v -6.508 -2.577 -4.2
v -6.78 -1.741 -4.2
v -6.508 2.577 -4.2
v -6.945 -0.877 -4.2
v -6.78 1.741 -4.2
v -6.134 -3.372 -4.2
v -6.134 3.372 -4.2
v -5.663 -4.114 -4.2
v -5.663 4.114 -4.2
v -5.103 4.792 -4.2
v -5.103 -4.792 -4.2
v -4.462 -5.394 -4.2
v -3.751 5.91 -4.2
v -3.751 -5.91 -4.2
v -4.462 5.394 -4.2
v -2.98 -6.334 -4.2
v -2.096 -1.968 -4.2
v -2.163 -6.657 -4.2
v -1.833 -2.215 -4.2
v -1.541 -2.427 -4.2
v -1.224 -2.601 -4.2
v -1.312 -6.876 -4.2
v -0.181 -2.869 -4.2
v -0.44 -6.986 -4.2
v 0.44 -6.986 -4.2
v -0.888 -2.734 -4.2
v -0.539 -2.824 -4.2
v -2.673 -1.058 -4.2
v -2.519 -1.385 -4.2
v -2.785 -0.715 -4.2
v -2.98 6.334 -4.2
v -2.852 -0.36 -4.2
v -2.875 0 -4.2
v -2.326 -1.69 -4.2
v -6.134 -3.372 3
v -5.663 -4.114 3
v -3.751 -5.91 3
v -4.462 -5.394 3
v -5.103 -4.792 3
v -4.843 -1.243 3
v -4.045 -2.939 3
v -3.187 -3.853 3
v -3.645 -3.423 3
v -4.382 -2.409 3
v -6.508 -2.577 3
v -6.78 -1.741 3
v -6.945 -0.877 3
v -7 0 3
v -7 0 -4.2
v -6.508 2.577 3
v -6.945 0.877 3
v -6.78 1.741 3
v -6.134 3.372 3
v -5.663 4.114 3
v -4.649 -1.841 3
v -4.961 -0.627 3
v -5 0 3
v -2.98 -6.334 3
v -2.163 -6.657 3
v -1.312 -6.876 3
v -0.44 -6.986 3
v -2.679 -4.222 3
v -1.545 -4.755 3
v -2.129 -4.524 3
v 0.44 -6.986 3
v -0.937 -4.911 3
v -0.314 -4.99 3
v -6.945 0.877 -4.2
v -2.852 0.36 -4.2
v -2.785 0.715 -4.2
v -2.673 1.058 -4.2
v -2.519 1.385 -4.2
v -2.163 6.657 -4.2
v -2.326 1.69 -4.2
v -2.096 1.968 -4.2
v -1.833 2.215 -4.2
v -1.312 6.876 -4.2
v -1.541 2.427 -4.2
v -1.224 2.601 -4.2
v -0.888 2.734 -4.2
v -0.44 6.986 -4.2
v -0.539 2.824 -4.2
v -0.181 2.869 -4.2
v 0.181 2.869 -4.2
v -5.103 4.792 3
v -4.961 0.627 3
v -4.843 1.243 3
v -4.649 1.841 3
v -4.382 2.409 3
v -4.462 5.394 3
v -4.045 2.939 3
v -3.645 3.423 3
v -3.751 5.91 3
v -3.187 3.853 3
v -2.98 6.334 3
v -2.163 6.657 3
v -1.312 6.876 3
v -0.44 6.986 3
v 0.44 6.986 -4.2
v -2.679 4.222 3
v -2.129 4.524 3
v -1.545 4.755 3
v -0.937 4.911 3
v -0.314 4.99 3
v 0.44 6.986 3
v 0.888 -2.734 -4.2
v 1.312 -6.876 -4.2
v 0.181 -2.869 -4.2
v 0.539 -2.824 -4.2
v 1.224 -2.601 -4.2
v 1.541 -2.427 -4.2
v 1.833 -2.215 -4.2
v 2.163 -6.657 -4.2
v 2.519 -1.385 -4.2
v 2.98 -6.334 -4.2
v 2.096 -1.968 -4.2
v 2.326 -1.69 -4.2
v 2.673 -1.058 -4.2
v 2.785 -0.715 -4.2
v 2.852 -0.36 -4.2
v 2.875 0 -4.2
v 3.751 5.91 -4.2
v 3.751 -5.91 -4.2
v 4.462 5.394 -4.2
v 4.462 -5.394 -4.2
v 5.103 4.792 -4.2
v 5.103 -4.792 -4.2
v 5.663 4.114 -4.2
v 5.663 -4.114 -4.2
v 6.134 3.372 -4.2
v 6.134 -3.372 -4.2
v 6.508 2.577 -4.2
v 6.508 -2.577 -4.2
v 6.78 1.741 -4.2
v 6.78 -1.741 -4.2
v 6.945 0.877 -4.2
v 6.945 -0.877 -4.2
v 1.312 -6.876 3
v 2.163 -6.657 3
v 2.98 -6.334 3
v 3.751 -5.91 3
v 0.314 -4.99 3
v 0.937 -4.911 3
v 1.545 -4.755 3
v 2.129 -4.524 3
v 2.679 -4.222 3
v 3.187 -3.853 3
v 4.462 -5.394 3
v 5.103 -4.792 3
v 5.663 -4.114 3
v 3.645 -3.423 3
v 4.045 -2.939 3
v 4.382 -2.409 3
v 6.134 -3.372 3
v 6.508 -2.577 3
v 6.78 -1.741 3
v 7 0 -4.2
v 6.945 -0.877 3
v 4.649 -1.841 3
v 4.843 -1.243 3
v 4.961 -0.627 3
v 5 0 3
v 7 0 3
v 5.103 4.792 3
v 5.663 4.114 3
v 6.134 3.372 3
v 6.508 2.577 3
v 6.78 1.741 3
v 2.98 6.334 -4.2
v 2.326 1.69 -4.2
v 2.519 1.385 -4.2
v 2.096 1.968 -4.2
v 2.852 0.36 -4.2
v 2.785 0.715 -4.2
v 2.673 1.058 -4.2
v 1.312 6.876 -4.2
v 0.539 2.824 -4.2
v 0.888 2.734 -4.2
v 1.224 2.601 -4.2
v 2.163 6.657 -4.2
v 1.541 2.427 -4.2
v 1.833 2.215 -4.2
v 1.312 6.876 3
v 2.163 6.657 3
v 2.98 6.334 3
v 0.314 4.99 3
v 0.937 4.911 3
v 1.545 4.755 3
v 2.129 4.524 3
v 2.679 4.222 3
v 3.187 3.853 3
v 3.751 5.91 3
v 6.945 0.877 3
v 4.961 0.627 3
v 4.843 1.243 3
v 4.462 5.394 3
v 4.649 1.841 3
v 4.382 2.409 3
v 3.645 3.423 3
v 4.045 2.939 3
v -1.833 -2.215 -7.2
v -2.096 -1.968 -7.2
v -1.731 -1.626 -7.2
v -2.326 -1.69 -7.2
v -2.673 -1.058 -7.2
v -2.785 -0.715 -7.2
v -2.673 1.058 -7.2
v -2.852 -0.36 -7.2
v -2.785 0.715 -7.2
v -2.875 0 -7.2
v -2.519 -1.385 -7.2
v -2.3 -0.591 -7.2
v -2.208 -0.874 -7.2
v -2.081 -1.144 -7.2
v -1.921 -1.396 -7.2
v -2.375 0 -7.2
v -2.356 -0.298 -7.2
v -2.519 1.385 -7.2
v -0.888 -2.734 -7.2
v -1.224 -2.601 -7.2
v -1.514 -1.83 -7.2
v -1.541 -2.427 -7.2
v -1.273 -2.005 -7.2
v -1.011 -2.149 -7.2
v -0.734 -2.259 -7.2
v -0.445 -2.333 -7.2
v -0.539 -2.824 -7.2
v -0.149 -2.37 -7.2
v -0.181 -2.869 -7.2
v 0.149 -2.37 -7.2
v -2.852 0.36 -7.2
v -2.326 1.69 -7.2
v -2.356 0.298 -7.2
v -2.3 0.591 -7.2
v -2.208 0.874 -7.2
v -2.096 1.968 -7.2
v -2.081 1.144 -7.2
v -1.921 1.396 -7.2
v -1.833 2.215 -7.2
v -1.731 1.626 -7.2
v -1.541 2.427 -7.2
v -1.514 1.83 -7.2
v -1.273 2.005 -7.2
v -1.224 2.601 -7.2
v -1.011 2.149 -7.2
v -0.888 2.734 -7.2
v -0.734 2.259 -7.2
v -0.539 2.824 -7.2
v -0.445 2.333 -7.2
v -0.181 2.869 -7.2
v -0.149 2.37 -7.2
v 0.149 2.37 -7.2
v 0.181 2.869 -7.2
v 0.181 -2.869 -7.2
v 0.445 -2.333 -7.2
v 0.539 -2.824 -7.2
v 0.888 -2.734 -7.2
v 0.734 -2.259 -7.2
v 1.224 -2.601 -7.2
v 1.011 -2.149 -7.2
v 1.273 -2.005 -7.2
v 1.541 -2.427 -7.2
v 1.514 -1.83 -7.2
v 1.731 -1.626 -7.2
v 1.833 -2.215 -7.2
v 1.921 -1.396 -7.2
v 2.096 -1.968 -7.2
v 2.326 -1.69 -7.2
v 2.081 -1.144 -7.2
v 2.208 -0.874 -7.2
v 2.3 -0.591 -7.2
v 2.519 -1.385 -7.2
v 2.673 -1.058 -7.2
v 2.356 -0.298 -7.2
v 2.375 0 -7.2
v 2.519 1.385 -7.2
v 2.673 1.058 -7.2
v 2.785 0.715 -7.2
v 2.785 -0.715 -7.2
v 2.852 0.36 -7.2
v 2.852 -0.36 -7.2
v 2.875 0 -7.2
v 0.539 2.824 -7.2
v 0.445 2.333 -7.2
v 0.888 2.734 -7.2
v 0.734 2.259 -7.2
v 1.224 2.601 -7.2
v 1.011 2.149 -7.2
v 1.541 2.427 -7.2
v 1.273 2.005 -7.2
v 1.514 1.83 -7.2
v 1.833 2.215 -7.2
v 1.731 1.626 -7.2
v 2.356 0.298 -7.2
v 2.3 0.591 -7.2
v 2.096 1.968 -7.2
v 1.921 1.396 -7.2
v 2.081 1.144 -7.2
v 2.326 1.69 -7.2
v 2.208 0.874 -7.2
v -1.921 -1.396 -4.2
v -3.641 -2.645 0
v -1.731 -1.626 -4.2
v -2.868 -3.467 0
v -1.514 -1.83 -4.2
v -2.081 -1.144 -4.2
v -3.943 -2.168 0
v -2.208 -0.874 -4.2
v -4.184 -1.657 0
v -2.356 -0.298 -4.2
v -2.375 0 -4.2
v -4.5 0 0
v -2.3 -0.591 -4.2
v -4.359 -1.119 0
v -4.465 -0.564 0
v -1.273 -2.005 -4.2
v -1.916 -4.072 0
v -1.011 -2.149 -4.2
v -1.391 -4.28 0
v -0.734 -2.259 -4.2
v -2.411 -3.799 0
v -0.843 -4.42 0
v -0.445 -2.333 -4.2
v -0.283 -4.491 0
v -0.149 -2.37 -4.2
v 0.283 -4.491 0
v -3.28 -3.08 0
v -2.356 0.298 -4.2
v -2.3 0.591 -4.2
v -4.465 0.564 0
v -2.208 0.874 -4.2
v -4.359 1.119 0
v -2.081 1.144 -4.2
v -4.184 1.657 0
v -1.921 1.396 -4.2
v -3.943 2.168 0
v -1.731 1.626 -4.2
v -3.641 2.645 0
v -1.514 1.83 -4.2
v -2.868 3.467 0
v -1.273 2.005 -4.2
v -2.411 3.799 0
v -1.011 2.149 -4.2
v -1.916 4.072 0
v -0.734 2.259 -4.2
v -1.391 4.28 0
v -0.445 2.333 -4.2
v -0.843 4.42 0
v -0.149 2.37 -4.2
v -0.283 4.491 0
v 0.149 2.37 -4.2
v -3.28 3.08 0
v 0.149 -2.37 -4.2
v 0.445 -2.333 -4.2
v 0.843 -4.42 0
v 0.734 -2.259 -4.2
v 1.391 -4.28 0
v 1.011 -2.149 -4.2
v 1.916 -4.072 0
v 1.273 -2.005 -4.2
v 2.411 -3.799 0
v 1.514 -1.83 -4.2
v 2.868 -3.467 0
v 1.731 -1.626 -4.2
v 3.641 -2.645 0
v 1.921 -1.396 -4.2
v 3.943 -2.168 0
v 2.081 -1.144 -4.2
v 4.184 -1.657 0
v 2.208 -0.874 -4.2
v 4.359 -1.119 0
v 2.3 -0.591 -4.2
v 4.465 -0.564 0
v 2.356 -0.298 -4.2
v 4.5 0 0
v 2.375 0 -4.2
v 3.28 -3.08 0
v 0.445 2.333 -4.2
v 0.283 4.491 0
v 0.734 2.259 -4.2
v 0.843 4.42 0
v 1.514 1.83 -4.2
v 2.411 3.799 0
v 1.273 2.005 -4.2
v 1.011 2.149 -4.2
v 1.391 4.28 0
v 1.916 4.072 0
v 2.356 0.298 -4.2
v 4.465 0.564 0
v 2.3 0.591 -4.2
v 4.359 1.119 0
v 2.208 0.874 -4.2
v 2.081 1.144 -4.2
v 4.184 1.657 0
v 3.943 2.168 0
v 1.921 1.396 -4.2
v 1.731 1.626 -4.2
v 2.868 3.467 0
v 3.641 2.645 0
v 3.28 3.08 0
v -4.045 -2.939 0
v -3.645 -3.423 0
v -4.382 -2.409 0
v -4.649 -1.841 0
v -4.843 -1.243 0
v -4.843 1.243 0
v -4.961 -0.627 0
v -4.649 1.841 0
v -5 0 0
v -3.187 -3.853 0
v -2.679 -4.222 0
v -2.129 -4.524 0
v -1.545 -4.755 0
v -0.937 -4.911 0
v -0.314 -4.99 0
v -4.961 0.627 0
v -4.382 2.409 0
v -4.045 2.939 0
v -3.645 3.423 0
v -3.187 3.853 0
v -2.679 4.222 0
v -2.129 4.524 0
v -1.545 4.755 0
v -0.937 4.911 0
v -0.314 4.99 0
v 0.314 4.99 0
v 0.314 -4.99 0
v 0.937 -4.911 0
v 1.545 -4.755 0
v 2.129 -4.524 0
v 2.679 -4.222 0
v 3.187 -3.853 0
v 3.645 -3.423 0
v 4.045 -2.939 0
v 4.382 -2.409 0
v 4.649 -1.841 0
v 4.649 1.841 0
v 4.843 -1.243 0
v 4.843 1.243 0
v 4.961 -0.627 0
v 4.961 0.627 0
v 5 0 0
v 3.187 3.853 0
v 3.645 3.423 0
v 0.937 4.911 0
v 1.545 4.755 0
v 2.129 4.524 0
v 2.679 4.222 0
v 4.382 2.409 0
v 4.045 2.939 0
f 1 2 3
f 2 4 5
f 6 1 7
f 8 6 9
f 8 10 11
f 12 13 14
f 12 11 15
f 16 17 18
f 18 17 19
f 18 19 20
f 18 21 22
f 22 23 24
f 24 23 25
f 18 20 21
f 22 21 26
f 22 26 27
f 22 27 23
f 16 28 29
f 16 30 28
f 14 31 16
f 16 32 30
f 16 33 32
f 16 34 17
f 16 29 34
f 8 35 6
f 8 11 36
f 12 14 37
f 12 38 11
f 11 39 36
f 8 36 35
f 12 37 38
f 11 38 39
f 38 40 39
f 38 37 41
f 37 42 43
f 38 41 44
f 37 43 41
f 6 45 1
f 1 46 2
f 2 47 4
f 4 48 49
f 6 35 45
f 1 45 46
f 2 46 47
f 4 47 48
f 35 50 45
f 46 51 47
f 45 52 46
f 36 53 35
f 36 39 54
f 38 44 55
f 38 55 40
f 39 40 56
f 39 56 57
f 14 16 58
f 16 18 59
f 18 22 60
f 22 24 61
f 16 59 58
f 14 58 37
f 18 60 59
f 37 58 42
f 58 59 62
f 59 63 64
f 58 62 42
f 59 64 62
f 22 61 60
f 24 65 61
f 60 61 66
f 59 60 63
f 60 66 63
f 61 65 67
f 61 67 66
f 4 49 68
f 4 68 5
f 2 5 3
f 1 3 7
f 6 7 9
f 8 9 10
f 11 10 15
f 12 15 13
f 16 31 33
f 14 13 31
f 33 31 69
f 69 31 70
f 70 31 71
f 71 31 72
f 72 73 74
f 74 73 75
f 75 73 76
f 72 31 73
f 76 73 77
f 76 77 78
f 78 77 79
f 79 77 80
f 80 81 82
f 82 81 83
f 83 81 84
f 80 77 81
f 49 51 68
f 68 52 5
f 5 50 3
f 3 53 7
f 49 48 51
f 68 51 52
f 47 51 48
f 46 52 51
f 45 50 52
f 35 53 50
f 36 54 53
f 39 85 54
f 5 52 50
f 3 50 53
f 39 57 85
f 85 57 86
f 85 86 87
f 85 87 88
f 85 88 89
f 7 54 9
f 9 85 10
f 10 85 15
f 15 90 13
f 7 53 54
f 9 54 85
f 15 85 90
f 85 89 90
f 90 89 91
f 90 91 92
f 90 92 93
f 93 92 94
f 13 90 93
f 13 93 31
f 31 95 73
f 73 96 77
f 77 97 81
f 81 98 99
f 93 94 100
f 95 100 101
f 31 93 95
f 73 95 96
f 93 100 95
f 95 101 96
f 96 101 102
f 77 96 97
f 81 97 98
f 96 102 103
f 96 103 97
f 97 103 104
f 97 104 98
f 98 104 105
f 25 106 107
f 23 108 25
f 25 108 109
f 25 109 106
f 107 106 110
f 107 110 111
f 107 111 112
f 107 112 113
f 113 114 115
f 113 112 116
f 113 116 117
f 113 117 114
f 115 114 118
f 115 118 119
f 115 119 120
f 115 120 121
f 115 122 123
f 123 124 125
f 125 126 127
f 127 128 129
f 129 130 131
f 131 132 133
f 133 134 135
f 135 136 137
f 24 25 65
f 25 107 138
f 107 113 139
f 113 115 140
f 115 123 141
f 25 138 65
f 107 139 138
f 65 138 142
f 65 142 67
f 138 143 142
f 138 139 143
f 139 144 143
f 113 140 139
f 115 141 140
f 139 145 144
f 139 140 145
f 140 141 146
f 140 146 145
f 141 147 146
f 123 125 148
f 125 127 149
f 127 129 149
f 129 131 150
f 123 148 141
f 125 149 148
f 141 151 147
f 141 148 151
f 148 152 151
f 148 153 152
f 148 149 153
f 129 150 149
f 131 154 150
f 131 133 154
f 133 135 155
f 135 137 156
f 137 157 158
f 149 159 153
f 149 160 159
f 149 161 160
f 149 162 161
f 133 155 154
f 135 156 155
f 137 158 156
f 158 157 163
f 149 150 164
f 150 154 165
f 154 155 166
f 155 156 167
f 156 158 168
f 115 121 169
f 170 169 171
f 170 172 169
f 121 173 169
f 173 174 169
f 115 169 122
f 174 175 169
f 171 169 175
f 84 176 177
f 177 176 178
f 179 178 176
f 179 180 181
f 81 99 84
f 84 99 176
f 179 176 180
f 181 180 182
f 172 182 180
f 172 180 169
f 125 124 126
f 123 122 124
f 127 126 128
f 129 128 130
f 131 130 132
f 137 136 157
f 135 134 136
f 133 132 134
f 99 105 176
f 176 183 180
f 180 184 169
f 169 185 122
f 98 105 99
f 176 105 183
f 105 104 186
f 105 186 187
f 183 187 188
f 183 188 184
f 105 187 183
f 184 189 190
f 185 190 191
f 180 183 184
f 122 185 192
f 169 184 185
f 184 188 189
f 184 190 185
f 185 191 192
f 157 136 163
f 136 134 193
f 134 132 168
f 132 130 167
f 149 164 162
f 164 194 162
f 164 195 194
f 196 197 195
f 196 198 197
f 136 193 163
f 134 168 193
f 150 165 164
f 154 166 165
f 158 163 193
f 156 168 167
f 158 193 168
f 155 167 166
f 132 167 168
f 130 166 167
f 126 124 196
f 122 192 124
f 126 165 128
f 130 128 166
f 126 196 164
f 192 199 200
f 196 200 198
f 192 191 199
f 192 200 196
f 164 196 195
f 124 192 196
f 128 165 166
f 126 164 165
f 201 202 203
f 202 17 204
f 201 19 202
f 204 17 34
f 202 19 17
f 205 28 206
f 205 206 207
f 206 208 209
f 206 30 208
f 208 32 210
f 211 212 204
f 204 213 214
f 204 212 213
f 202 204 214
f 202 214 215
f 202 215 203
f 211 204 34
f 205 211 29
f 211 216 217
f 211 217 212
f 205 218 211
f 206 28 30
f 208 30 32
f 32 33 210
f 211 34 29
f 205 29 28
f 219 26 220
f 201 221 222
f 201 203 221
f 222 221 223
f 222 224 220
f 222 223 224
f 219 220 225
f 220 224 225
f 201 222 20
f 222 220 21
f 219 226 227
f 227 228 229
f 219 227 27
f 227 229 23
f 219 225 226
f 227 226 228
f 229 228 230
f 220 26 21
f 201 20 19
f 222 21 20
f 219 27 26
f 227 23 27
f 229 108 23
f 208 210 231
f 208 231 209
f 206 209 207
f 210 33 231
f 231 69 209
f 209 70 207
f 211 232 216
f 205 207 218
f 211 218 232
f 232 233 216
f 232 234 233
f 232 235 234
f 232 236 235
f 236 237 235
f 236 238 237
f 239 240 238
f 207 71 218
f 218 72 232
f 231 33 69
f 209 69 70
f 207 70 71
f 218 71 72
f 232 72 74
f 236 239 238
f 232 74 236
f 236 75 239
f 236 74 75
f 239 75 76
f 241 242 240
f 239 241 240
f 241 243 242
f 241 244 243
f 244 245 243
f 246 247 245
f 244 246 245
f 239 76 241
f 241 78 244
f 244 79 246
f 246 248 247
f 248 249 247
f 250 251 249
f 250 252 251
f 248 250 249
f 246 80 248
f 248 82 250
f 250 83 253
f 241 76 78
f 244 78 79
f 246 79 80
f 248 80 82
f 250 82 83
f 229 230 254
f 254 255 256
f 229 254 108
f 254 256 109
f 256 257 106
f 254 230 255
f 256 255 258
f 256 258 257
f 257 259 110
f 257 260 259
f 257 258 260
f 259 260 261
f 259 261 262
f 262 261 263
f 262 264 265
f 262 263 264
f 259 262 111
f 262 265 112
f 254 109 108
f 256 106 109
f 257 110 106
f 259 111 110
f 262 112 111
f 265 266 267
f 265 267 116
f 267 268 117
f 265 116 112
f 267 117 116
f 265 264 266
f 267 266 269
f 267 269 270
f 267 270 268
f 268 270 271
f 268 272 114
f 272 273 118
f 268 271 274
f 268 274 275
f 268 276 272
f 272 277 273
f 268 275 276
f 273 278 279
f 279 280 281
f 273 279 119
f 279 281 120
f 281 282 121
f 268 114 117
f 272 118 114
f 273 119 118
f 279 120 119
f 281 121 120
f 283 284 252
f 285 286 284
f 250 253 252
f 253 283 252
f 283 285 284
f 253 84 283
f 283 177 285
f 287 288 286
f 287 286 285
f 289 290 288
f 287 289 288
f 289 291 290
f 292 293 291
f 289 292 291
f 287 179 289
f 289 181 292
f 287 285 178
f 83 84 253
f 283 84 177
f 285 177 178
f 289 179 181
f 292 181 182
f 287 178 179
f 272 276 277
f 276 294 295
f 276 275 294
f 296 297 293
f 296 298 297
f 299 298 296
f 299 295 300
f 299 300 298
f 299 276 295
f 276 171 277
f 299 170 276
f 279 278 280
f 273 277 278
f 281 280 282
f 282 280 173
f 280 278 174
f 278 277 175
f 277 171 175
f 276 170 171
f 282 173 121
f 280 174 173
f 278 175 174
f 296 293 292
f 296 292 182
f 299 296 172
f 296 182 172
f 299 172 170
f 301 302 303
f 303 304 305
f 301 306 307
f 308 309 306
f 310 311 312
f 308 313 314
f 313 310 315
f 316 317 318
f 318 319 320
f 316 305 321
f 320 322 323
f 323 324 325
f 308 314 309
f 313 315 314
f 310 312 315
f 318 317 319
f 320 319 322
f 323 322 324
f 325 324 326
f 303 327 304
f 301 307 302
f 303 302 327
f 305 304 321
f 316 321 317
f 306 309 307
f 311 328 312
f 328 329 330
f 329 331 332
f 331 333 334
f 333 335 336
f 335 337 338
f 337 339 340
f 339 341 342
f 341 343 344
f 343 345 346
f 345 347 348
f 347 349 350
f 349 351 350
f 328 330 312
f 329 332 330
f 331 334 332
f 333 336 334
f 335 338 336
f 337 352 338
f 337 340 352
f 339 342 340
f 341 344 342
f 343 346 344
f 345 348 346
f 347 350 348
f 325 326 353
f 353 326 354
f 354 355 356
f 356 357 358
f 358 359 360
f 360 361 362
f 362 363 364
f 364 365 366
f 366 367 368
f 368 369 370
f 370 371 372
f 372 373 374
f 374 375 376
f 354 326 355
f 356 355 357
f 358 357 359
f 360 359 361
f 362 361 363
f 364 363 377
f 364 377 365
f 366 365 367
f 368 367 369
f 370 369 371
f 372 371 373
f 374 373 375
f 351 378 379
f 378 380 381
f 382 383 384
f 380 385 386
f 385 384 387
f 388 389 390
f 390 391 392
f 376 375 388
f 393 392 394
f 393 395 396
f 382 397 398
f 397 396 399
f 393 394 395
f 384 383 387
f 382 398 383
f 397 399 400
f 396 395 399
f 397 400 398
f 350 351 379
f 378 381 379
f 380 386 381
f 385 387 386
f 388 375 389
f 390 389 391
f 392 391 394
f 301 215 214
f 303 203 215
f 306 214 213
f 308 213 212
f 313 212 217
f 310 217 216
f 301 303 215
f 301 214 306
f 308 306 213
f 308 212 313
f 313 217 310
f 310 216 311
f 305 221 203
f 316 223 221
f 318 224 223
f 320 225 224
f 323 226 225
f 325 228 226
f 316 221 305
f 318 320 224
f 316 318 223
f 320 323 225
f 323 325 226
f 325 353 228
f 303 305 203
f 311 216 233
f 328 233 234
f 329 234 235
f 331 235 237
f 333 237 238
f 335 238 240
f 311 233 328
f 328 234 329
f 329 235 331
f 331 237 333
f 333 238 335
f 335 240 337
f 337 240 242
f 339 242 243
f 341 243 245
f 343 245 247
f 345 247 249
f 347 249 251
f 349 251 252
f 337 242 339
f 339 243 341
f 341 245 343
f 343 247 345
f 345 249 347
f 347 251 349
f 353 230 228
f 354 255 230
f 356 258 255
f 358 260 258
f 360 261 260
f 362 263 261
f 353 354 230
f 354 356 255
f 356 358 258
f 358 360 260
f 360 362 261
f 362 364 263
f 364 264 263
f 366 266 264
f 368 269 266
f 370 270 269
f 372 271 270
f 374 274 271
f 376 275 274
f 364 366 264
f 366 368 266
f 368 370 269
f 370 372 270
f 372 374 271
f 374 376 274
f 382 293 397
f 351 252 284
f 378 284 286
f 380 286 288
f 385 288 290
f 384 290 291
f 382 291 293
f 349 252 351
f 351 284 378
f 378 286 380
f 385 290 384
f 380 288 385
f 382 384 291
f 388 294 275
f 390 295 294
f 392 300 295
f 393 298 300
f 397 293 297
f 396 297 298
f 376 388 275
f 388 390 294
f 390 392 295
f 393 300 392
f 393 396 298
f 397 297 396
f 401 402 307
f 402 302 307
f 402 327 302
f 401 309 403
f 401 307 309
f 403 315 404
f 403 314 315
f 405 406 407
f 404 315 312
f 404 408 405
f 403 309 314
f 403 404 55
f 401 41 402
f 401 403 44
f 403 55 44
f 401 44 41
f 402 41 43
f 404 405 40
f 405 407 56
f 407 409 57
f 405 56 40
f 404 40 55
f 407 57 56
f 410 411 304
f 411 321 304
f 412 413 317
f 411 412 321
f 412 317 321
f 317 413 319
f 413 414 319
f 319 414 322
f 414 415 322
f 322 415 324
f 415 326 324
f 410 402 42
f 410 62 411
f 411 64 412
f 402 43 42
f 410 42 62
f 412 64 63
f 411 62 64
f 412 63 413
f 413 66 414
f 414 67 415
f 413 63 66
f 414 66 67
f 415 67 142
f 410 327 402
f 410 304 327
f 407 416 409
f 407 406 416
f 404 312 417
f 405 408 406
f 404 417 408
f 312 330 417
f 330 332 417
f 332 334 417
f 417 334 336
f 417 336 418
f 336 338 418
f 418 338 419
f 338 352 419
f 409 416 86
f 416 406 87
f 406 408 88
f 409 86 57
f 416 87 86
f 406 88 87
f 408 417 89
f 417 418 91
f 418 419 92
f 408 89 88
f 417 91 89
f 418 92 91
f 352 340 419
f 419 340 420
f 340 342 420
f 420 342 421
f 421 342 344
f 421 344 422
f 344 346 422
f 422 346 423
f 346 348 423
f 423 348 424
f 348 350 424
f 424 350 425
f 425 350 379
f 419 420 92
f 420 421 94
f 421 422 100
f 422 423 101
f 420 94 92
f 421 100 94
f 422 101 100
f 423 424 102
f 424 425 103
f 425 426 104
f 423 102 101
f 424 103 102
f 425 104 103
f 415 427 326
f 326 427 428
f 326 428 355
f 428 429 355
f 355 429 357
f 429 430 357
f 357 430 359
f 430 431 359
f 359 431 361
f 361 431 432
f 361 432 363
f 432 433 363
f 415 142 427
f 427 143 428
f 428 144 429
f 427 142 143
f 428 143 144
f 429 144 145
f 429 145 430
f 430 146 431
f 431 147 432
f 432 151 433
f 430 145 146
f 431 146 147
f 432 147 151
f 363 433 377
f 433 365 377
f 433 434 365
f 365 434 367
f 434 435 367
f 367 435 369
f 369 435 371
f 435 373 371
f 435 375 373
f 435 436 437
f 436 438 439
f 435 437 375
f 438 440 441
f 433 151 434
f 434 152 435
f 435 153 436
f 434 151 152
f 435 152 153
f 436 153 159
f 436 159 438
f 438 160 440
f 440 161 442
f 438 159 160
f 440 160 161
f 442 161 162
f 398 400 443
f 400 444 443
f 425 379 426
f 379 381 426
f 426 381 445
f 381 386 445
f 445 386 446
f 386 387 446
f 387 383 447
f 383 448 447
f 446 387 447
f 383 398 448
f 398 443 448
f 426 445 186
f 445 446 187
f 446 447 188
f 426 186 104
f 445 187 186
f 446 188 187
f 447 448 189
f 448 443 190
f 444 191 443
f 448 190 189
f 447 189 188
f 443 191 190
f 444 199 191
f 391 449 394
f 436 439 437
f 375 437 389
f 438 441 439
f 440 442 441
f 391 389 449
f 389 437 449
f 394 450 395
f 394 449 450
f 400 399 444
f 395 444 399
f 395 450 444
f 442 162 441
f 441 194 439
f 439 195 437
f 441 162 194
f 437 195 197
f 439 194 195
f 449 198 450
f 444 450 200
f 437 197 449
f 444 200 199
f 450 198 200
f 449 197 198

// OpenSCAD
$fn = 50;


difference() {
	union() {
		translate(v = [0, 0, -4.2000000000]) {
			cylinder(h = 7.2000000000, r = 7.0000000000);
		}
		#translate(v = [0, 0, -7.2000000000]) {
			cylinder(h = 7.2000000000, r = 2.8750000000);
		}
	}
	union() {
		translate(v = [0, 0, 0]) {
			rotate(a = [0, 0, 0]) {
				difference() {
					union() {
						translate(v = [0, 0, -7.2000000000]) {
							cylinder(h = 7.2000000000, r = 2.2500000000);
						}
						translate(v = [0, 0, -4.2000000000]) {
							cylinder(h = 4.2000000000, r1 = 2.3750000000, r2 = 4.5000000000);
						}
						translate(v = [0, 0, -7.2000000000]) {
							cylinder(h = 7.2000000000, r = 2.3750000000);
						}
						translate(v = [0, 0, -7.2000000000]) {
							cylinder(h = 7.2000000000, r = 2.2500000000);
						}
					}
					union();
				}
			}
		}
		#cylinder(h = 3, r = 5.0000000000);
	}
}
